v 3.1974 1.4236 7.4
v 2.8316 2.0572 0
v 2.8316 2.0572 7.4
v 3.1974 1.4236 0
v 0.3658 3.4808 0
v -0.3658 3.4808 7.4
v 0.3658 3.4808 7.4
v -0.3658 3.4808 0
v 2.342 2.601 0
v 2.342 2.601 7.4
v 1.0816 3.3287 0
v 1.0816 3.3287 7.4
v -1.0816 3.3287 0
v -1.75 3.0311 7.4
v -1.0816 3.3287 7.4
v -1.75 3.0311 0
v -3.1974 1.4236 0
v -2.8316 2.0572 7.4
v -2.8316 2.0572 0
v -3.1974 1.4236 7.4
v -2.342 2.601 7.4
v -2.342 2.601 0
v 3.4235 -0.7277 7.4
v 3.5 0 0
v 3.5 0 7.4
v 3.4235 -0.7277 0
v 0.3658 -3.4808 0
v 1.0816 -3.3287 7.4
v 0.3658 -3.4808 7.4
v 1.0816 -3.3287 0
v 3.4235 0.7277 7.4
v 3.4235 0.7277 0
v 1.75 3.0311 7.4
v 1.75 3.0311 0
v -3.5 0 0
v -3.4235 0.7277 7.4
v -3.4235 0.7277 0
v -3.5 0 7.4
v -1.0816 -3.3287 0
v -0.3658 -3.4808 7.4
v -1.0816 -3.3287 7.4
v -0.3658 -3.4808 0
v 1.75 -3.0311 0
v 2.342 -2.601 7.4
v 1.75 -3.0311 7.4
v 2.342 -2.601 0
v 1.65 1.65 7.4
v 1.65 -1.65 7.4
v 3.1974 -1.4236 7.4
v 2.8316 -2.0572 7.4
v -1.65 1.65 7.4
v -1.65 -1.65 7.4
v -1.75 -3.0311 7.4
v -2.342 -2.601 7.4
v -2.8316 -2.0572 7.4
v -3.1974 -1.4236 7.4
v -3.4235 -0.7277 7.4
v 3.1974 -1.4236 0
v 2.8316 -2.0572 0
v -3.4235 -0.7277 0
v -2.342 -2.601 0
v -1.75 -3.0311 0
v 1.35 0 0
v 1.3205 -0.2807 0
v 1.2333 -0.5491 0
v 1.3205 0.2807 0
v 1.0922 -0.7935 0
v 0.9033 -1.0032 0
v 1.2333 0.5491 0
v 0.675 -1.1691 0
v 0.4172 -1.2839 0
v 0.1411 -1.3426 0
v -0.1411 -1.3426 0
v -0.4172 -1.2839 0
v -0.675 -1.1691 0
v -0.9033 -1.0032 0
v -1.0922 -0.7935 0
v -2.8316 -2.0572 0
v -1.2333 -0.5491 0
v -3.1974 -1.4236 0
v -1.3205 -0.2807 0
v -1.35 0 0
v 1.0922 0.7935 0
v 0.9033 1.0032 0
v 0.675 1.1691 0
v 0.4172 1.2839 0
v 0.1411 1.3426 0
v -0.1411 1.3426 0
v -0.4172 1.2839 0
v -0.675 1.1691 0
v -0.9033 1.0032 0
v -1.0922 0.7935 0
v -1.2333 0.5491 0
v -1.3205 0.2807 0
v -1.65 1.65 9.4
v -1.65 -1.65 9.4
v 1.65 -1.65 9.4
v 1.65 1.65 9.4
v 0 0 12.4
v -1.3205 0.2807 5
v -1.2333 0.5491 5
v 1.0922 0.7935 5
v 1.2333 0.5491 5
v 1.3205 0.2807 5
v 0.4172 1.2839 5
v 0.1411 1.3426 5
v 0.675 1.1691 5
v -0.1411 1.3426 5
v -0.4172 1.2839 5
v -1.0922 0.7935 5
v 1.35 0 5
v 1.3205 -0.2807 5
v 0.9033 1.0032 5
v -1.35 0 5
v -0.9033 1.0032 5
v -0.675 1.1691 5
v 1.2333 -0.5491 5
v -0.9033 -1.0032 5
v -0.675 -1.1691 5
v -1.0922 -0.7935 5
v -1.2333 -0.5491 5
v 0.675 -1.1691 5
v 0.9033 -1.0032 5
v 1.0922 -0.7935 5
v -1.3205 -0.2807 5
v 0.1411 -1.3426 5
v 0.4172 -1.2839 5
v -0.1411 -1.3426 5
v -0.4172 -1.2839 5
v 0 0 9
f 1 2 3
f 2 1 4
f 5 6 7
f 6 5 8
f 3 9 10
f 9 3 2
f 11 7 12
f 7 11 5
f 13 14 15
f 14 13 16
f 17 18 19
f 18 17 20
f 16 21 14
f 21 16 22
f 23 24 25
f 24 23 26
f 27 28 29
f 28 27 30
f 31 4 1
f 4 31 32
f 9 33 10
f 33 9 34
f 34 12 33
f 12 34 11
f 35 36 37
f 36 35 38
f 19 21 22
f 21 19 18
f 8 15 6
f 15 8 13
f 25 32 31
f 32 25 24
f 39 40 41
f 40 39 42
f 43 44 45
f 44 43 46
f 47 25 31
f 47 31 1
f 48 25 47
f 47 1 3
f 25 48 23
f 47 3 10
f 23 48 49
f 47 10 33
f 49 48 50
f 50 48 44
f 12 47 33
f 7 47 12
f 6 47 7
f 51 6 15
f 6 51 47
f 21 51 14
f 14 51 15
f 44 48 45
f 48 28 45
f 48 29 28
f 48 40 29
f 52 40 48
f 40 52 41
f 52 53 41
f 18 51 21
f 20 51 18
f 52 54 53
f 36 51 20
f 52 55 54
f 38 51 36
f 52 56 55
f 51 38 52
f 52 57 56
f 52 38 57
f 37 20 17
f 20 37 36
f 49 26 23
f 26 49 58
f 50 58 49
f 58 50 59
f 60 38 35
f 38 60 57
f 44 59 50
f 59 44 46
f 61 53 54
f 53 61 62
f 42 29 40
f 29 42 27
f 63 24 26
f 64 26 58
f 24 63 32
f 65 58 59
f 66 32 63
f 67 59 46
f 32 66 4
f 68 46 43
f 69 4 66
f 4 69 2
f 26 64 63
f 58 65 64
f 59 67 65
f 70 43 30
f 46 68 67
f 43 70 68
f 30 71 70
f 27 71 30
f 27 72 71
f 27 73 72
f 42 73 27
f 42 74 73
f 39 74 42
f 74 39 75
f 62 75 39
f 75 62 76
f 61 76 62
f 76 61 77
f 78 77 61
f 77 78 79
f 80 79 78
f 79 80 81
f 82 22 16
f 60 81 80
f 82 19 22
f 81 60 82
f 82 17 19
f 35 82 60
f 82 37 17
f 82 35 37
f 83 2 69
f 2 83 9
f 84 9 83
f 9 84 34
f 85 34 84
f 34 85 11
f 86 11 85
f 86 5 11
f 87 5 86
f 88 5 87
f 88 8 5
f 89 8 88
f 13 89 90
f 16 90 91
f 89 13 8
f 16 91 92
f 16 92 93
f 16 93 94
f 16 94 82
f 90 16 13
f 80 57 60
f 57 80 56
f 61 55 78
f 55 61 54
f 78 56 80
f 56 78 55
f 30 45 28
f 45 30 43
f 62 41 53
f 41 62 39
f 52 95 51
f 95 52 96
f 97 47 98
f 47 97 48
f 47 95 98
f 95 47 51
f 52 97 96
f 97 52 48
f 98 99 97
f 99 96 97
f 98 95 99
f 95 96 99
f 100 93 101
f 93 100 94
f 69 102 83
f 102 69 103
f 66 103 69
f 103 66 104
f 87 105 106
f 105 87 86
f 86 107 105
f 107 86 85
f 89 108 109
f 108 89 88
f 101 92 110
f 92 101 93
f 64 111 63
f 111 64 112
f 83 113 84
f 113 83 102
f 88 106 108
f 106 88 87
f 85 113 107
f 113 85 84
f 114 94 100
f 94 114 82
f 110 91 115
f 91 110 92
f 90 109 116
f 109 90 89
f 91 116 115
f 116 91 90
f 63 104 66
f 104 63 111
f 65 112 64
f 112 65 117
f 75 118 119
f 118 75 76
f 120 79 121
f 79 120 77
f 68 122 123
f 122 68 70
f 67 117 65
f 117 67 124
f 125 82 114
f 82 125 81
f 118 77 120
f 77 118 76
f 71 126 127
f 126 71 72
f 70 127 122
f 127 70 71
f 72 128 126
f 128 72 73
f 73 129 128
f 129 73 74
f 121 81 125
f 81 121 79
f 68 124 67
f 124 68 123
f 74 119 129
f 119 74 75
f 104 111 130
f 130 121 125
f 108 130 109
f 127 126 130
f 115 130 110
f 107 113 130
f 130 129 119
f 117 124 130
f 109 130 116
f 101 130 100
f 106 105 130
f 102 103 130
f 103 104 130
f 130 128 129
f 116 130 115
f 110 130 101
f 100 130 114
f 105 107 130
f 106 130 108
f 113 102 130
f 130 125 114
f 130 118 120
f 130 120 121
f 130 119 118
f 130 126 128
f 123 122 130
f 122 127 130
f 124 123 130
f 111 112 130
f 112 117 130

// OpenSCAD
height_total = 19.0;
display_height = 11.6;
distance = height_total - display_height;
edge = 3.3;

$fs = 0.01;

difference() {
    union() {
        cylinder(distance,d=7);
        translate([-edge/2,-edge/2,distance]) {
            cube([edge,edge,2]);
        }
        translate([0,0,distance+2]) {
            polyhedron(
                points=[[edge/2,edge/2,0],
                        [edge/2,-edge/2,0],
                        [-edge/2,-edge/2,0],
                        [-edge/2,edge/2,0],
                        [0,0,3]],
                faces=[[0,1,4],
                       [1,2,4],
                       [2,3,4],
                       [3,0,4],
                       [1,0,3],
                       [2,1,3]]
             );
        }
    }
    cylinder(5,d=2.7);
    translate([0,0,5]) {
        cylinder(4,d1=2.7,d2=0);
    }
}
